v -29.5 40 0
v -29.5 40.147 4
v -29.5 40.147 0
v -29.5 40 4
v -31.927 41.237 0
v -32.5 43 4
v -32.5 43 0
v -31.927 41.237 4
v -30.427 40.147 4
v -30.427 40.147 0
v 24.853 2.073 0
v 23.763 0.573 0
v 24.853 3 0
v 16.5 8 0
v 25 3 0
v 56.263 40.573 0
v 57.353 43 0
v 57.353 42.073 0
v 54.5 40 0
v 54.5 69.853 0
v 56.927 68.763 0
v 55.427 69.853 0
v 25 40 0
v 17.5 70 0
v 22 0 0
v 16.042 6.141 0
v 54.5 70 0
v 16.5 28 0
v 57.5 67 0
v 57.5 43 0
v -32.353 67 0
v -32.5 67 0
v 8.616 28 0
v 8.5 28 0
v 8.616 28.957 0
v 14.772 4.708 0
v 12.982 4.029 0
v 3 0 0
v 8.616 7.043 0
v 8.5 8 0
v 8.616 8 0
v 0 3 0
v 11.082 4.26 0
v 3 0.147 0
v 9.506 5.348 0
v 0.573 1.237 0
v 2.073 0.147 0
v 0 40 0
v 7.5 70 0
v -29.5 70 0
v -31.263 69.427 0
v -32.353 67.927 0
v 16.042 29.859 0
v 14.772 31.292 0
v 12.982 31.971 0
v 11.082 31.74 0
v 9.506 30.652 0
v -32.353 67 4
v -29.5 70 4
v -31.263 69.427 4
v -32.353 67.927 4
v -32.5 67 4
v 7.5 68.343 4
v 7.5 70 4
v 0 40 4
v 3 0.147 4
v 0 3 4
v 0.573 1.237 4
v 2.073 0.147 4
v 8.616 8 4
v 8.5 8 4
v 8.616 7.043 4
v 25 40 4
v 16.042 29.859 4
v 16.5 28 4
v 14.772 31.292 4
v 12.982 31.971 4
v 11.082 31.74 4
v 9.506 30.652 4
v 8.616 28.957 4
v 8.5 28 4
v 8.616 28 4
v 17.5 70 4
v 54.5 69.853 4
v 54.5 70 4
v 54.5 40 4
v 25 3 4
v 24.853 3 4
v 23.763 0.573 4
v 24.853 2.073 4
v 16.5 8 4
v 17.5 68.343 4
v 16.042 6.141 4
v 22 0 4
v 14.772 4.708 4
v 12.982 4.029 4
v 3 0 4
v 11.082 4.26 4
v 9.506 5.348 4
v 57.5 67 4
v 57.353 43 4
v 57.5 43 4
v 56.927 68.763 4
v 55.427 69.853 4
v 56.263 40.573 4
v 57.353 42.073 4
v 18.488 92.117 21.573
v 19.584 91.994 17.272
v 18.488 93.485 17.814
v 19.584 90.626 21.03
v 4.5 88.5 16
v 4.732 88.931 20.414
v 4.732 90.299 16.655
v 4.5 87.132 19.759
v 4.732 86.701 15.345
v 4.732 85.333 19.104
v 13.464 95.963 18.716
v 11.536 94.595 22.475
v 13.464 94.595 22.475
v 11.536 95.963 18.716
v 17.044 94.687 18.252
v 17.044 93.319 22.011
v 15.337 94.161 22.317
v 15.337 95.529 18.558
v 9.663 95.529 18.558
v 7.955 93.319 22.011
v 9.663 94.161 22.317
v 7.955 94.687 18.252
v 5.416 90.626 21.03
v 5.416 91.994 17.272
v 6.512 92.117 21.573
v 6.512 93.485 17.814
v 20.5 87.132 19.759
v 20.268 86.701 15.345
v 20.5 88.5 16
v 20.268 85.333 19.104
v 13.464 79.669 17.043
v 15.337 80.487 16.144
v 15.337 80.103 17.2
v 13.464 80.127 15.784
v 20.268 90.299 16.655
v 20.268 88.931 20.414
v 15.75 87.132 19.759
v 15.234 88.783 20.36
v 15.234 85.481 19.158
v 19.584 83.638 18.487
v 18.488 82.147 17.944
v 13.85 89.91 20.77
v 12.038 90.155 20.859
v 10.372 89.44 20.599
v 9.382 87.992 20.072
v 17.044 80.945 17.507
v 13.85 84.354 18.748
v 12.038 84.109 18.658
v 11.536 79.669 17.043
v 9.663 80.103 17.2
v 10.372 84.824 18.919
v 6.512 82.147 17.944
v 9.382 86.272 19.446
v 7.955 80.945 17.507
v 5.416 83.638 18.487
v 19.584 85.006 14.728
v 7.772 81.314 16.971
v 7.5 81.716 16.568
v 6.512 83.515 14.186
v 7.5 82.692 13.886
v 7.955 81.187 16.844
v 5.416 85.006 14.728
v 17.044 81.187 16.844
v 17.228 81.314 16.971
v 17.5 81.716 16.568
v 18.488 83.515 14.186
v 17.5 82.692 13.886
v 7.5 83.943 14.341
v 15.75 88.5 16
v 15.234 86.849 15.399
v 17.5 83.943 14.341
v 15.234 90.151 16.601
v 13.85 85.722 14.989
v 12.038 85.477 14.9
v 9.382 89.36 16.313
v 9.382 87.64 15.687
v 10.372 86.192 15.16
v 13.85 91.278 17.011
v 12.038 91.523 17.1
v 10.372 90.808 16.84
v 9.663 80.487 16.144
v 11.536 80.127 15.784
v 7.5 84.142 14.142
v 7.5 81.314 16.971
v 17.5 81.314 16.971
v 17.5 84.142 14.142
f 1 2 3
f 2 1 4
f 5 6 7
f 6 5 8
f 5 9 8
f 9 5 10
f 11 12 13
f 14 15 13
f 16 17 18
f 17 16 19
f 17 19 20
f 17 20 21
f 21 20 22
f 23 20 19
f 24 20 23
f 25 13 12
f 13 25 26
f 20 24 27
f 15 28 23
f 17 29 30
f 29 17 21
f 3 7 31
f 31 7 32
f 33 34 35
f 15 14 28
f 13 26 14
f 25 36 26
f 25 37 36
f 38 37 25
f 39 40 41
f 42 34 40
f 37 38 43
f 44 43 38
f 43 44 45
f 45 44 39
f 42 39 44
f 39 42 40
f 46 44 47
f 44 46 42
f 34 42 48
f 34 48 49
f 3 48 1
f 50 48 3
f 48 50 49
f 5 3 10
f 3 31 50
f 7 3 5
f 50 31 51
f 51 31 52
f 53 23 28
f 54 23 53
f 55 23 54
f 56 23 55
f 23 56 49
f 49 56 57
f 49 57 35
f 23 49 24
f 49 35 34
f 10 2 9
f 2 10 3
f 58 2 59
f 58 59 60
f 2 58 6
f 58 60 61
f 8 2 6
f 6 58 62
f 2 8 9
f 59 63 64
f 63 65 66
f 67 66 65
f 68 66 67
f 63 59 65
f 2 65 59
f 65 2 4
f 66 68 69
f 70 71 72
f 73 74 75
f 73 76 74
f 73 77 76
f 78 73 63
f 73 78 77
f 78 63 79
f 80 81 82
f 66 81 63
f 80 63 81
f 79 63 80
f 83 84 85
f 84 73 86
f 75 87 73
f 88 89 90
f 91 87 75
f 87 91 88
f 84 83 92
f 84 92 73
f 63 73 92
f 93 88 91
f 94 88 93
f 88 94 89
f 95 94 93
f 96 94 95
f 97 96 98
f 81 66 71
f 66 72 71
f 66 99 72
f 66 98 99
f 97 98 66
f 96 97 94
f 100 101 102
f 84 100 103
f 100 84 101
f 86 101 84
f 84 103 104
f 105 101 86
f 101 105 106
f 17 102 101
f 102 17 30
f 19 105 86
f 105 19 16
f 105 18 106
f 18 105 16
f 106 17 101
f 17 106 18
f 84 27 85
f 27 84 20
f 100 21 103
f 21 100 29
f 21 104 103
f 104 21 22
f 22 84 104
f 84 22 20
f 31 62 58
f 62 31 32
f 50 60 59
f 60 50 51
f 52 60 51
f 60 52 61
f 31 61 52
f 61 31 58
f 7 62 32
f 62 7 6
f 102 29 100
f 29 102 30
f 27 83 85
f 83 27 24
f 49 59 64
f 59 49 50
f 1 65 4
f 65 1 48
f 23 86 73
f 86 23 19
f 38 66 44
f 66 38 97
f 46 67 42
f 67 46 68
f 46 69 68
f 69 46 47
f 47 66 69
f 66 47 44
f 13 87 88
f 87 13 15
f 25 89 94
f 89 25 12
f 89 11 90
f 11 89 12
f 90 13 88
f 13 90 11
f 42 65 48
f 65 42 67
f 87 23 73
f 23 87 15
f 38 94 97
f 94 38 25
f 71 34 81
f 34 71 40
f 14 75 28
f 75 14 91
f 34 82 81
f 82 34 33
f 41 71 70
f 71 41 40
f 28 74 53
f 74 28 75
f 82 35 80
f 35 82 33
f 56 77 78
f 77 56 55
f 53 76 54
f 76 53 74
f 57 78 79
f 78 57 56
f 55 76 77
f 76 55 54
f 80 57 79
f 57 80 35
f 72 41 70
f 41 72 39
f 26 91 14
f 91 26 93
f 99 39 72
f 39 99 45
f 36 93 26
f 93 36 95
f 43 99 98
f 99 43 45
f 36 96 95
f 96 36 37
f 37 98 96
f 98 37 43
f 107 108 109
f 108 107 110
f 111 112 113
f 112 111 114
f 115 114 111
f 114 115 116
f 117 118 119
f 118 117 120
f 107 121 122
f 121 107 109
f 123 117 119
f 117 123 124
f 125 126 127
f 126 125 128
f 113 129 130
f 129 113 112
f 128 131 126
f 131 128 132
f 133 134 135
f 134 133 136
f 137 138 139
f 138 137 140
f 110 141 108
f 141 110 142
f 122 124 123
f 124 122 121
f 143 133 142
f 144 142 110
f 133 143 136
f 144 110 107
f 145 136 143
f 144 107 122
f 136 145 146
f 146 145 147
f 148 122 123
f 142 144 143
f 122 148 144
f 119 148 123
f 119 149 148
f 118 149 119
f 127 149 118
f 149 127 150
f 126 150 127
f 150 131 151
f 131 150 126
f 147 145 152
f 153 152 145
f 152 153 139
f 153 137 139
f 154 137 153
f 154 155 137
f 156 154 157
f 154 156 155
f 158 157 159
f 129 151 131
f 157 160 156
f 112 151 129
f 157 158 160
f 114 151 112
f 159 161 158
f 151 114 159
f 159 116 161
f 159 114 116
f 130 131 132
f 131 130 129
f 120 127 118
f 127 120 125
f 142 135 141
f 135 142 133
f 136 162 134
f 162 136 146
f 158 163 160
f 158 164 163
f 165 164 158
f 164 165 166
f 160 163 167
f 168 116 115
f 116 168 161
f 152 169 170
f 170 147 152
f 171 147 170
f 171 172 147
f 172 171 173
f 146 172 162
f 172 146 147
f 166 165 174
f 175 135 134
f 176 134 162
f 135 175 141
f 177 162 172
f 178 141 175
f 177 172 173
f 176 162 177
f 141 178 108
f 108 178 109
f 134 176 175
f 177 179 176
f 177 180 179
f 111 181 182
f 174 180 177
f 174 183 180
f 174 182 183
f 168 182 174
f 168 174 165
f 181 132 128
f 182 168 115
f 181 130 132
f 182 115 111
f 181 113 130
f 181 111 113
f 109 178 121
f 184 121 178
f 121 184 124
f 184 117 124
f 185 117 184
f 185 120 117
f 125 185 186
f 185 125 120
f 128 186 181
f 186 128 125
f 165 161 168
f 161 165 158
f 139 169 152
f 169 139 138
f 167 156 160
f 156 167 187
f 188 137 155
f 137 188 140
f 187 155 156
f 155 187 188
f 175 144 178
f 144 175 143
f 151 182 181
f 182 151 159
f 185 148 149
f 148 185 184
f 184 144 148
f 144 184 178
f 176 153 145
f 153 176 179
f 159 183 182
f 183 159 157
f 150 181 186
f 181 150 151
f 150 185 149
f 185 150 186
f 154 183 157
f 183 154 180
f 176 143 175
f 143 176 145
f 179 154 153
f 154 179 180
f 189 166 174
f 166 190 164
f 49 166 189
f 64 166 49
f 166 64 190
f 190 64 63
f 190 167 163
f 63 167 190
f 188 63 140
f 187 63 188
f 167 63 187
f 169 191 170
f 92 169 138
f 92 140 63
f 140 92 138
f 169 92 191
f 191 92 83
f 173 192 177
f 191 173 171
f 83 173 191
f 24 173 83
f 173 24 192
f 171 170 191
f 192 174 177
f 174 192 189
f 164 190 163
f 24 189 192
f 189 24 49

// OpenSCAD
plate_height = 4;

#translate([12.5,88.5,16]) rotate([20,0,0]) 
    difference(){
    cylinder(plate_height,8,8);
    #translate([0,0,0]) rotate([0,0,0]) cylinder(plate_height+1,3.25,3.25);
}

translate([7.5,70,0]) rotate([45,0,0]) cube([10,20,plate_height]);

difference(){
    union (){
    translate([-32.5,40,0]) rotate(0)roundedcube (90, 30, plate_height, 3);
    translate([0,0,0]) rotate(0) roundedcube (25, 70, plate_height, 3);
    }
    //bottom hole
    translate([8.5,8,0]) cube([8,20,plate_height+1]);
    translate([12.5,28,0]) cylinder(plate_height+1,4,4);
    translate([12.5,8,0]) cylinder(plate_height+1,4,4);
}

/*difference(){
    roundedcube (180, 22, plate_height+1, 3);
    // mid hole
    translate([9.5,11,0]) cylinder(plate_height+1,4.5,4.5);
    //left hole
    translate([9.5,6.5,0]) cube([5,9,plate_height+1]);
    translate([15.5,11,0]) cylinder(plate_height+1,4.5,4.5);
    translate([90,11,0]) cylinder(plate_height+1,4.5,4.5);
    //right hole
    translate([165.5,6.5,0]) cube([5,9,plate_height+1]);
    translate([165.5,11,0]) cylinder(plate_height+1,4.5,4.5);
    translate([170.5,11,0]) cylinder(plate_height+1,4.5,4.5);
}*/

module roundedcube(xx, yy, height, radius) {

difference(){

    cube([xx,yy,height]);

    difference(){
        translate([-.5,-.5,-.2])
        cube([radius+.5,radius+.5,height+.5]);

        translate([radius,radius,height/2])
        cylinder(height,radius,radius,true);
    }
    translate([xx,0,0])
    rotate(90)
    difference(){
        translate([-.5,-.5,-.2])
        cube([radius+.5,radius+.5,height+.5]);

        translate([radius,radius,height/2])
        cylinder(height,radius,radius,true);
    }

    translate([xx,yy,0])
    rotate(180)
    difference(){
        translate([-.5,-.5,-.2])
        cube([radius+.5,radius+.5,height+.5]);

        translate([radius,radius,height/2])
        cylinder(height,radius,radius,true);
    }

    translate([0,yy,0])
    rotate(270)
    difference(){
        translate([-.5,-.5,-.2])
        cube([radius+.5,radius+.5,height+.5]);

        translate([radius,radius,height/2])
        cylinder(height,radius,radius,true);
    }
}
}
